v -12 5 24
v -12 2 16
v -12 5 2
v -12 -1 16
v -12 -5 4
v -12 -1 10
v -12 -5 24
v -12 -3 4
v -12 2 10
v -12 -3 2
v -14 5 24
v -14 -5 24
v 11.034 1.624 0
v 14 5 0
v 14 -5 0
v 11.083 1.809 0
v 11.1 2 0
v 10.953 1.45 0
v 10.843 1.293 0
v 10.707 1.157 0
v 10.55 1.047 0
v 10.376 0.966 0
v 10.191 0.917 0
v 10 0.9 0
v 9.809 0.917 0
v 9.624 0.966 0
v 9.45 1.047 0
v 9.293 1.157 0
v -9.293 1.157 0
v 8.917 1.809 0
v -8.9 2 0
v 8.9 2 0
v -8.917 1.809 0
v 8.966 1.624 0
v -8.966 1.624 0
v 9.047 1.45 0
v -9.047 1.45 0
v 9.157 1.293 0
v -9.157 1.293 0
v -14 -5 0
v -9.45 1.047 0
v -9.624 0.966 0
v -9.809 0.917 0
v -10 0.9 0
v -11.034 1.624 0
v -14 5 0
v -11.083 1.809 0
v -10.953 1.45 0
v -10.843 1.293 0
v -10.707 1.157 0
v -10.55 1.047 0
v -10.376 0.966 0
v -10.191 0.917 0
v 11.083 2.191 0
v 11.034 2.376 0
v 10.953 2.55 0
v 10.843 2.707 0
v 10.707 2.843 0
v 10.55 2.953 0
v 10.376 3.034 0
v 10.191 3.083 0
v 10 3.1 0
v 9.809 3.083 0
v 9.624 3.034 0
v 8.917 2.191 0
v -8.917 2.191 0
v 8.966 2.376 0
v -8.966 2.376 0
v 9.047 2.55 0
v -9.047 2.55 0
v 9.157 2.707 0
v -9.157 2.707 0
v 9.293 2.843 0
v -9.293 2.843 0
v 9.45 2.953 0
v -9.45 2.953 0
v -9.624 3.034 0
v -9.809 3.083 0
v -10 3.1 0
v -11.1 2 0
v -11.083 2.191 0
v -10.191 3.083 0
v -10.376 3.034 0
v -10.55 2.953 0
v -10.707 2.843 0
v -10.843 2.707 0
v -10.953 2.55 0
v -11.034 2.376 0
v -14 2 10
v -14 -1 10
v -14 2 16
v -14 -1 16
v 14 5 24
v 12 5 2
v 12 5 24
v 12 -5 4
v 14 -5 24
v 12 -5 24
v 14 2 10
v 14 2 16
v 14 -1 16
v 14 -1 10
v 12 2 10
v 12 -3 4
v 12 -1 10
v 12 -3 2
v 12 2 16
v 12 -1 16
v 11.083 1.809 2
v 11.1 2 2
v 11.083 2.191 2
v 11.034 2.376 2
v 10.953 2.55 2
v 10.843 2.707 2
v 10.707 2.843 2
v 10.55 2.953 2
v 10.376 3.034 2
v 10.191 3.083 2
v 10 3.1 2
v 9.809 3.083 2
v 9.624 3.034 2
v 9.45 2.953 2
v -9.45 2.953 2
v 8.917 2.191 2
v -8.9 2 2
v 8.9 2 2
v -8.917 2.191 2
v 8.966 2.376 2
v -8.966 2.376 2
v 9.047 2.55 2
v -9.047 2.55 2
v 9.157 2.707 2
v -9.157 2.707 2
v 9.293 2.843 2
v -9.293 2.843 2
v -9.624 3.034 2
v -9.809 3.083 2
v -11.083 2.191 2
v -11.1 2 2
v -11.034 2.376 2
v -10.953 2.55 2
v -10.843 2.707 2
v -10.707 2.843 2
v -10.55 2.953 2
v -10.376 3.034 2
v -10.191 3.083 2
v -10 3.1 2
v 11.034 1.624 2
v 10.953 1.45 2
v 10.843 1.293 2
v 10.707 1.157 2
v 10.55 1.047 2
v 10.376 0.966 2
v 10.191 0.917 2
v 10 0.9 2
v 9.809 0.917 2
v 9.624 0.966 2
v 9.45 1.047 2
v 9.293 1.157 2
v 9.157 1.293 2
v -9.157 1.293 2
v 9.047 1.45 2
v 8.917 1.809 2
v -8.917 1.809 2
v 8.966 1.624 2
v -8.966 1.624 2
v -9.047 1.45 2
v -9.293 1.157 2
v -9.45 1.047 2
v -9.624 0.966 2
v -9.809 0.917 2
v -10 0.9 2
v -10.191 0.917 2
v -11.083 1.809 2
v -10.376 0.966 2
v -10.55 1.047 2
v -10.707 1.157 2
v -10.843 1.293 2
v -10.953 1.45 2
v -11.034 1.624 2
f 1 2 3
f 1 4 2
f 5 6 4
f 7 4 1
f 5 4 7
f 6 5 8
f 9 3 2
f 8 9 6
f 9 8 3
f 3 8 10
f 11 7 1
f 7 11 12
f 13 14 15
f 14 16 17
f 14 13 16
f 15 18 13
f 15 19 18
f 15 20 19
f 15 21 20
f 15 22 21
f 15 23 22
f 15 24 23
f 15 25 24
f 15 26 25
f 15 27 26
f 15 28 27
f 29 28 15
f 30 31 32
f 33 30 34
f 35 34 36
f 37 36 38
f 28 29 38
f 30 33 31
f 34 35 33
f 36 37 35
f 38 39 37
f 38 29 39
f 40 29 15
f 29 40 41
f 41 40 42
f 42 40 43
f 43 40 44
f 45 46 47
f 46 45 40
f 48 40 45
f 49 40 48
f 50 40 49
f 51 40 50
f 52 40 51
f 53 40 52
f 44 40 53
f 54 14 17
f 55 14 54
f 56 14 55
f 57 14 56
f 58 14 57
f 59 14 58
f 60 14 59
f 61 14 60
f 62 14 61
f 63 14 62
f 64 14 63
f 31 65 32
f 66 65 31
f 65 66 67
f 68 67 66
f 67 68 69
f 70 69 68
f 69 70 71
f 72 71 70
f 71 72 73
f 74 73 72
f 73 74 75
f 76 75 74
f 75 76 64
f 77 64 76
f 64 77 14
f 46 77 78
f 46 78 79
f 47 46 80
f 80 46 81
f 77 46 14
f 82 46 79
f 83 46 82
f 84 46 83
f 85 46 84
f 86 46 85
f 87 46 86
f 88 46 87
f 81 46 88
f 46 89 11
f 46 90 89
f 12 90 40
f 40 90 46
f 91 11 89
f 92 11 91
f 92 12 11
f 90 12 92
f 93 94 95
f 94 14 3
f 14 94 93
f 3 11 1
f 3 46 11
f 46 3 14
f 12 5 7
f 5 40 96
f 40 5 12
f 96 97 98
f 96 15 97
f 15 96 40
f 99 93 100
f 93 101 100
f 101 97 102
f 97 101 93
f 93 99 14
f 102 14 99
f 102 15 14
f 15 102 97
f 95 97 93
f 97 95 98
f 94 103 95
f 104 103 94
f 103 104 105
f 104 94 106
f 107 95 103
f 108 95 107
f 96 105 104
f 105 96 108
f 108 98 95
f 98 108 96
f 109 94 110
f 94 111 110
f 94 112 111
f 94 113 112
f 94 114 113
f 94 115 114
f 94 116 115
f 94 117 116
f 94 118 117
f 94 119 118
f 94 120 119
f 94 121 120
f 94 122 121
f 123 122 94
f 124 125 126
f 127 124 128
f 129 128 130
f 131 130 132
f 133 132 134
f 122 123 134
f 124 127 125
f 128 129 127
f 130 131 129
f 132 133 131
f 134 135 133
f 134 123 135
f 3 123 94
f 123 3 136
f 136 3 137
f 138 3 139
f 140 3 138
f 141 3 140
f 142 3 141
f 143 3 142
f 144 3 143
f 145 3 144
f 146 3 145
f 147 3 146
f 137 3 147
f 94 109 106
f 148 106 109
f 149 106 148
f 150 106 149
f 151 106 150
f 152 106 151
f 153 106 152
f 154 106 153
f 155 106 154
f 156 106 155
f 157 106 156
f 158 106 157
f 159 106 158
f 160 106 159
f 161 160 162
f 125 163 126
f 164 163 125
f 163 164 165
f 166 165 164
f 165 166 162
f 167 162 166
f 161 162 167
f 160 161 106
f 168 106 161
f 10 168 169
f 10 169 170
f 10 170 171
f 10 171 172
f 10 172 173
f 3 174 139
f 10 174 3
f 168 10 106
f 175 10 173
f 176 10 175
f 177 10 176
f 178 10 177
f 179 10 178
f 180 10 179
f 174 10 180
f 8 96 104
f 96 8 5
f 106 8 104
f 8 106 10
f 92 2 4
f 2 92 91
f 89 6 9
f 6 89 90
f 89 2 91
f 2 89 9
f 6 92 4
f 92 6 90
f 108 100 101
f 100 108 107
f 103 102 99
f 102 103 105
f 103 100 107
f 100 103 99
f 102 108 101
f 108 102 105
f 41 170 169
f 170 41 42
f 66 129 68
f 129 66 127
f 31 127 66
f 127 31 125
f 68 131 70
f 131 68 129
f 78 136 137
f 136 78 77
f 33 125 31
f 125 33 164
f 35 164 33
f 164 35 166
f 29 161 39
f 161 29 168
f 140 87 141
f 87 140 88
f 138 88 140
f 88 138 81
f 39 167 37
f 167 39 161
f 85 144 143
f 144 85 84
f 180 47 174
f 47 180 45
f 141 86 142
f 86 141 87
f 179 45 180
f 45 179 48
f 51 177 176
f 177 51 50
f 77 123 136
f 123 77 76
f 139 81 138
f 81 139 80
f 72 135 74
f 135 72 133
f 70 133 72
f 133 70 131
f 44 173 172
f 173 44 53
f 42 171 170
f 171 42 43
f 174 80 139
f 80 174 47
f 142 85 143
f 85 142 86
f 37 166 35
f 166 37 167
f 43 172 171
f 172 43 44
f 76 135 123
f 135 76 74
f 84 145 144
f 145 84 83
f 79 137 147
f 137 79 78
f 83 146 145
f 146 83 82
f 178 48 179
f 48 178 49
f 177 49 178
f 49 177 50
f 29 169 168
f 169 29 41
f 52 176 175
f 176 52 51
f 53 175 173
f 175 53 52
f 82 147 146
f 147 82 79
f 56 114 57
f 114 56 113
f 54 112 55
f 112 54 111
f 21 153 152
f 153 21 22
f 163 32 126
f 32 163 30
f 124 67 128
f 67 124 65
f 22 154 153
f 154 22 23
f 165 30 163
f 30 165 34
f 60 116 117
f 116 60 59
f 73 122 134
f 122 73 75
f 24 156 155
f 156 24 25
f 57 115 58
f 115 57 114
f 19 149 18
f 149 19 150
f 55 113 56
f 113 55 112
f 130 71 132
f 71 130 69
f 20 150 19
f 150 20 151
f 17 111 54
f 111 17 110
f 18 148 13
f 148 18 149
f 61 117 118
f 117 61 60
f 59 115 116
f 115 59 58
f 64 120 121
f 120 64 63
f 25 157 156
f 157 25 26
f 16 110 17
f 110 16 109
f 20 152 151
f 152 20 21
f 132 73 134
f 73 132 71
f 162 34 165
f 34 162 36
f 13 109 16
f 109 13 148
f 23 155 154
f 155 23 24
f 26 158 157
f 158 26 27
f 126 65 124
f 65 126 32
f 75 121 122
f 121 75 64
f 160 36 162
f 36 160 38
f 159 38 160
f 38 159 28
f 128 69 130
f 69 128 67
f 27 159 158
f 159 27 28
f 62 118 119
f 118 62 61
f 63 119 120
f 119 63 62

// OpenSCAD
// Vertical XIAO Sense stack, camera facing +Y. A 6 mm strap retains the module.
// Clear envelope 23 x 19 x 14 mm; verify supplied module, lens and USB before use.
$fn=36;
board_width=23;
module cradle(){
  difference(){
    union(){
      translate([-14,-5,0])cube([28,10,2]);
      for(x=[-14,12])translate([x,-5,0])cube([2,10,24]);
      translate([-14,-5,0])cube([28,2,4]);
    }
    // Slots retain a strap without covering the center lens or antenna socket.
    for(x=[-14,12])translate([x-.1,-1,10])cube([2.2,3,6]);
    for(x=[-10,10])translate([x,2,-.1])cylinder(h=2.2,d=2.2);
  }
}
cradle();
